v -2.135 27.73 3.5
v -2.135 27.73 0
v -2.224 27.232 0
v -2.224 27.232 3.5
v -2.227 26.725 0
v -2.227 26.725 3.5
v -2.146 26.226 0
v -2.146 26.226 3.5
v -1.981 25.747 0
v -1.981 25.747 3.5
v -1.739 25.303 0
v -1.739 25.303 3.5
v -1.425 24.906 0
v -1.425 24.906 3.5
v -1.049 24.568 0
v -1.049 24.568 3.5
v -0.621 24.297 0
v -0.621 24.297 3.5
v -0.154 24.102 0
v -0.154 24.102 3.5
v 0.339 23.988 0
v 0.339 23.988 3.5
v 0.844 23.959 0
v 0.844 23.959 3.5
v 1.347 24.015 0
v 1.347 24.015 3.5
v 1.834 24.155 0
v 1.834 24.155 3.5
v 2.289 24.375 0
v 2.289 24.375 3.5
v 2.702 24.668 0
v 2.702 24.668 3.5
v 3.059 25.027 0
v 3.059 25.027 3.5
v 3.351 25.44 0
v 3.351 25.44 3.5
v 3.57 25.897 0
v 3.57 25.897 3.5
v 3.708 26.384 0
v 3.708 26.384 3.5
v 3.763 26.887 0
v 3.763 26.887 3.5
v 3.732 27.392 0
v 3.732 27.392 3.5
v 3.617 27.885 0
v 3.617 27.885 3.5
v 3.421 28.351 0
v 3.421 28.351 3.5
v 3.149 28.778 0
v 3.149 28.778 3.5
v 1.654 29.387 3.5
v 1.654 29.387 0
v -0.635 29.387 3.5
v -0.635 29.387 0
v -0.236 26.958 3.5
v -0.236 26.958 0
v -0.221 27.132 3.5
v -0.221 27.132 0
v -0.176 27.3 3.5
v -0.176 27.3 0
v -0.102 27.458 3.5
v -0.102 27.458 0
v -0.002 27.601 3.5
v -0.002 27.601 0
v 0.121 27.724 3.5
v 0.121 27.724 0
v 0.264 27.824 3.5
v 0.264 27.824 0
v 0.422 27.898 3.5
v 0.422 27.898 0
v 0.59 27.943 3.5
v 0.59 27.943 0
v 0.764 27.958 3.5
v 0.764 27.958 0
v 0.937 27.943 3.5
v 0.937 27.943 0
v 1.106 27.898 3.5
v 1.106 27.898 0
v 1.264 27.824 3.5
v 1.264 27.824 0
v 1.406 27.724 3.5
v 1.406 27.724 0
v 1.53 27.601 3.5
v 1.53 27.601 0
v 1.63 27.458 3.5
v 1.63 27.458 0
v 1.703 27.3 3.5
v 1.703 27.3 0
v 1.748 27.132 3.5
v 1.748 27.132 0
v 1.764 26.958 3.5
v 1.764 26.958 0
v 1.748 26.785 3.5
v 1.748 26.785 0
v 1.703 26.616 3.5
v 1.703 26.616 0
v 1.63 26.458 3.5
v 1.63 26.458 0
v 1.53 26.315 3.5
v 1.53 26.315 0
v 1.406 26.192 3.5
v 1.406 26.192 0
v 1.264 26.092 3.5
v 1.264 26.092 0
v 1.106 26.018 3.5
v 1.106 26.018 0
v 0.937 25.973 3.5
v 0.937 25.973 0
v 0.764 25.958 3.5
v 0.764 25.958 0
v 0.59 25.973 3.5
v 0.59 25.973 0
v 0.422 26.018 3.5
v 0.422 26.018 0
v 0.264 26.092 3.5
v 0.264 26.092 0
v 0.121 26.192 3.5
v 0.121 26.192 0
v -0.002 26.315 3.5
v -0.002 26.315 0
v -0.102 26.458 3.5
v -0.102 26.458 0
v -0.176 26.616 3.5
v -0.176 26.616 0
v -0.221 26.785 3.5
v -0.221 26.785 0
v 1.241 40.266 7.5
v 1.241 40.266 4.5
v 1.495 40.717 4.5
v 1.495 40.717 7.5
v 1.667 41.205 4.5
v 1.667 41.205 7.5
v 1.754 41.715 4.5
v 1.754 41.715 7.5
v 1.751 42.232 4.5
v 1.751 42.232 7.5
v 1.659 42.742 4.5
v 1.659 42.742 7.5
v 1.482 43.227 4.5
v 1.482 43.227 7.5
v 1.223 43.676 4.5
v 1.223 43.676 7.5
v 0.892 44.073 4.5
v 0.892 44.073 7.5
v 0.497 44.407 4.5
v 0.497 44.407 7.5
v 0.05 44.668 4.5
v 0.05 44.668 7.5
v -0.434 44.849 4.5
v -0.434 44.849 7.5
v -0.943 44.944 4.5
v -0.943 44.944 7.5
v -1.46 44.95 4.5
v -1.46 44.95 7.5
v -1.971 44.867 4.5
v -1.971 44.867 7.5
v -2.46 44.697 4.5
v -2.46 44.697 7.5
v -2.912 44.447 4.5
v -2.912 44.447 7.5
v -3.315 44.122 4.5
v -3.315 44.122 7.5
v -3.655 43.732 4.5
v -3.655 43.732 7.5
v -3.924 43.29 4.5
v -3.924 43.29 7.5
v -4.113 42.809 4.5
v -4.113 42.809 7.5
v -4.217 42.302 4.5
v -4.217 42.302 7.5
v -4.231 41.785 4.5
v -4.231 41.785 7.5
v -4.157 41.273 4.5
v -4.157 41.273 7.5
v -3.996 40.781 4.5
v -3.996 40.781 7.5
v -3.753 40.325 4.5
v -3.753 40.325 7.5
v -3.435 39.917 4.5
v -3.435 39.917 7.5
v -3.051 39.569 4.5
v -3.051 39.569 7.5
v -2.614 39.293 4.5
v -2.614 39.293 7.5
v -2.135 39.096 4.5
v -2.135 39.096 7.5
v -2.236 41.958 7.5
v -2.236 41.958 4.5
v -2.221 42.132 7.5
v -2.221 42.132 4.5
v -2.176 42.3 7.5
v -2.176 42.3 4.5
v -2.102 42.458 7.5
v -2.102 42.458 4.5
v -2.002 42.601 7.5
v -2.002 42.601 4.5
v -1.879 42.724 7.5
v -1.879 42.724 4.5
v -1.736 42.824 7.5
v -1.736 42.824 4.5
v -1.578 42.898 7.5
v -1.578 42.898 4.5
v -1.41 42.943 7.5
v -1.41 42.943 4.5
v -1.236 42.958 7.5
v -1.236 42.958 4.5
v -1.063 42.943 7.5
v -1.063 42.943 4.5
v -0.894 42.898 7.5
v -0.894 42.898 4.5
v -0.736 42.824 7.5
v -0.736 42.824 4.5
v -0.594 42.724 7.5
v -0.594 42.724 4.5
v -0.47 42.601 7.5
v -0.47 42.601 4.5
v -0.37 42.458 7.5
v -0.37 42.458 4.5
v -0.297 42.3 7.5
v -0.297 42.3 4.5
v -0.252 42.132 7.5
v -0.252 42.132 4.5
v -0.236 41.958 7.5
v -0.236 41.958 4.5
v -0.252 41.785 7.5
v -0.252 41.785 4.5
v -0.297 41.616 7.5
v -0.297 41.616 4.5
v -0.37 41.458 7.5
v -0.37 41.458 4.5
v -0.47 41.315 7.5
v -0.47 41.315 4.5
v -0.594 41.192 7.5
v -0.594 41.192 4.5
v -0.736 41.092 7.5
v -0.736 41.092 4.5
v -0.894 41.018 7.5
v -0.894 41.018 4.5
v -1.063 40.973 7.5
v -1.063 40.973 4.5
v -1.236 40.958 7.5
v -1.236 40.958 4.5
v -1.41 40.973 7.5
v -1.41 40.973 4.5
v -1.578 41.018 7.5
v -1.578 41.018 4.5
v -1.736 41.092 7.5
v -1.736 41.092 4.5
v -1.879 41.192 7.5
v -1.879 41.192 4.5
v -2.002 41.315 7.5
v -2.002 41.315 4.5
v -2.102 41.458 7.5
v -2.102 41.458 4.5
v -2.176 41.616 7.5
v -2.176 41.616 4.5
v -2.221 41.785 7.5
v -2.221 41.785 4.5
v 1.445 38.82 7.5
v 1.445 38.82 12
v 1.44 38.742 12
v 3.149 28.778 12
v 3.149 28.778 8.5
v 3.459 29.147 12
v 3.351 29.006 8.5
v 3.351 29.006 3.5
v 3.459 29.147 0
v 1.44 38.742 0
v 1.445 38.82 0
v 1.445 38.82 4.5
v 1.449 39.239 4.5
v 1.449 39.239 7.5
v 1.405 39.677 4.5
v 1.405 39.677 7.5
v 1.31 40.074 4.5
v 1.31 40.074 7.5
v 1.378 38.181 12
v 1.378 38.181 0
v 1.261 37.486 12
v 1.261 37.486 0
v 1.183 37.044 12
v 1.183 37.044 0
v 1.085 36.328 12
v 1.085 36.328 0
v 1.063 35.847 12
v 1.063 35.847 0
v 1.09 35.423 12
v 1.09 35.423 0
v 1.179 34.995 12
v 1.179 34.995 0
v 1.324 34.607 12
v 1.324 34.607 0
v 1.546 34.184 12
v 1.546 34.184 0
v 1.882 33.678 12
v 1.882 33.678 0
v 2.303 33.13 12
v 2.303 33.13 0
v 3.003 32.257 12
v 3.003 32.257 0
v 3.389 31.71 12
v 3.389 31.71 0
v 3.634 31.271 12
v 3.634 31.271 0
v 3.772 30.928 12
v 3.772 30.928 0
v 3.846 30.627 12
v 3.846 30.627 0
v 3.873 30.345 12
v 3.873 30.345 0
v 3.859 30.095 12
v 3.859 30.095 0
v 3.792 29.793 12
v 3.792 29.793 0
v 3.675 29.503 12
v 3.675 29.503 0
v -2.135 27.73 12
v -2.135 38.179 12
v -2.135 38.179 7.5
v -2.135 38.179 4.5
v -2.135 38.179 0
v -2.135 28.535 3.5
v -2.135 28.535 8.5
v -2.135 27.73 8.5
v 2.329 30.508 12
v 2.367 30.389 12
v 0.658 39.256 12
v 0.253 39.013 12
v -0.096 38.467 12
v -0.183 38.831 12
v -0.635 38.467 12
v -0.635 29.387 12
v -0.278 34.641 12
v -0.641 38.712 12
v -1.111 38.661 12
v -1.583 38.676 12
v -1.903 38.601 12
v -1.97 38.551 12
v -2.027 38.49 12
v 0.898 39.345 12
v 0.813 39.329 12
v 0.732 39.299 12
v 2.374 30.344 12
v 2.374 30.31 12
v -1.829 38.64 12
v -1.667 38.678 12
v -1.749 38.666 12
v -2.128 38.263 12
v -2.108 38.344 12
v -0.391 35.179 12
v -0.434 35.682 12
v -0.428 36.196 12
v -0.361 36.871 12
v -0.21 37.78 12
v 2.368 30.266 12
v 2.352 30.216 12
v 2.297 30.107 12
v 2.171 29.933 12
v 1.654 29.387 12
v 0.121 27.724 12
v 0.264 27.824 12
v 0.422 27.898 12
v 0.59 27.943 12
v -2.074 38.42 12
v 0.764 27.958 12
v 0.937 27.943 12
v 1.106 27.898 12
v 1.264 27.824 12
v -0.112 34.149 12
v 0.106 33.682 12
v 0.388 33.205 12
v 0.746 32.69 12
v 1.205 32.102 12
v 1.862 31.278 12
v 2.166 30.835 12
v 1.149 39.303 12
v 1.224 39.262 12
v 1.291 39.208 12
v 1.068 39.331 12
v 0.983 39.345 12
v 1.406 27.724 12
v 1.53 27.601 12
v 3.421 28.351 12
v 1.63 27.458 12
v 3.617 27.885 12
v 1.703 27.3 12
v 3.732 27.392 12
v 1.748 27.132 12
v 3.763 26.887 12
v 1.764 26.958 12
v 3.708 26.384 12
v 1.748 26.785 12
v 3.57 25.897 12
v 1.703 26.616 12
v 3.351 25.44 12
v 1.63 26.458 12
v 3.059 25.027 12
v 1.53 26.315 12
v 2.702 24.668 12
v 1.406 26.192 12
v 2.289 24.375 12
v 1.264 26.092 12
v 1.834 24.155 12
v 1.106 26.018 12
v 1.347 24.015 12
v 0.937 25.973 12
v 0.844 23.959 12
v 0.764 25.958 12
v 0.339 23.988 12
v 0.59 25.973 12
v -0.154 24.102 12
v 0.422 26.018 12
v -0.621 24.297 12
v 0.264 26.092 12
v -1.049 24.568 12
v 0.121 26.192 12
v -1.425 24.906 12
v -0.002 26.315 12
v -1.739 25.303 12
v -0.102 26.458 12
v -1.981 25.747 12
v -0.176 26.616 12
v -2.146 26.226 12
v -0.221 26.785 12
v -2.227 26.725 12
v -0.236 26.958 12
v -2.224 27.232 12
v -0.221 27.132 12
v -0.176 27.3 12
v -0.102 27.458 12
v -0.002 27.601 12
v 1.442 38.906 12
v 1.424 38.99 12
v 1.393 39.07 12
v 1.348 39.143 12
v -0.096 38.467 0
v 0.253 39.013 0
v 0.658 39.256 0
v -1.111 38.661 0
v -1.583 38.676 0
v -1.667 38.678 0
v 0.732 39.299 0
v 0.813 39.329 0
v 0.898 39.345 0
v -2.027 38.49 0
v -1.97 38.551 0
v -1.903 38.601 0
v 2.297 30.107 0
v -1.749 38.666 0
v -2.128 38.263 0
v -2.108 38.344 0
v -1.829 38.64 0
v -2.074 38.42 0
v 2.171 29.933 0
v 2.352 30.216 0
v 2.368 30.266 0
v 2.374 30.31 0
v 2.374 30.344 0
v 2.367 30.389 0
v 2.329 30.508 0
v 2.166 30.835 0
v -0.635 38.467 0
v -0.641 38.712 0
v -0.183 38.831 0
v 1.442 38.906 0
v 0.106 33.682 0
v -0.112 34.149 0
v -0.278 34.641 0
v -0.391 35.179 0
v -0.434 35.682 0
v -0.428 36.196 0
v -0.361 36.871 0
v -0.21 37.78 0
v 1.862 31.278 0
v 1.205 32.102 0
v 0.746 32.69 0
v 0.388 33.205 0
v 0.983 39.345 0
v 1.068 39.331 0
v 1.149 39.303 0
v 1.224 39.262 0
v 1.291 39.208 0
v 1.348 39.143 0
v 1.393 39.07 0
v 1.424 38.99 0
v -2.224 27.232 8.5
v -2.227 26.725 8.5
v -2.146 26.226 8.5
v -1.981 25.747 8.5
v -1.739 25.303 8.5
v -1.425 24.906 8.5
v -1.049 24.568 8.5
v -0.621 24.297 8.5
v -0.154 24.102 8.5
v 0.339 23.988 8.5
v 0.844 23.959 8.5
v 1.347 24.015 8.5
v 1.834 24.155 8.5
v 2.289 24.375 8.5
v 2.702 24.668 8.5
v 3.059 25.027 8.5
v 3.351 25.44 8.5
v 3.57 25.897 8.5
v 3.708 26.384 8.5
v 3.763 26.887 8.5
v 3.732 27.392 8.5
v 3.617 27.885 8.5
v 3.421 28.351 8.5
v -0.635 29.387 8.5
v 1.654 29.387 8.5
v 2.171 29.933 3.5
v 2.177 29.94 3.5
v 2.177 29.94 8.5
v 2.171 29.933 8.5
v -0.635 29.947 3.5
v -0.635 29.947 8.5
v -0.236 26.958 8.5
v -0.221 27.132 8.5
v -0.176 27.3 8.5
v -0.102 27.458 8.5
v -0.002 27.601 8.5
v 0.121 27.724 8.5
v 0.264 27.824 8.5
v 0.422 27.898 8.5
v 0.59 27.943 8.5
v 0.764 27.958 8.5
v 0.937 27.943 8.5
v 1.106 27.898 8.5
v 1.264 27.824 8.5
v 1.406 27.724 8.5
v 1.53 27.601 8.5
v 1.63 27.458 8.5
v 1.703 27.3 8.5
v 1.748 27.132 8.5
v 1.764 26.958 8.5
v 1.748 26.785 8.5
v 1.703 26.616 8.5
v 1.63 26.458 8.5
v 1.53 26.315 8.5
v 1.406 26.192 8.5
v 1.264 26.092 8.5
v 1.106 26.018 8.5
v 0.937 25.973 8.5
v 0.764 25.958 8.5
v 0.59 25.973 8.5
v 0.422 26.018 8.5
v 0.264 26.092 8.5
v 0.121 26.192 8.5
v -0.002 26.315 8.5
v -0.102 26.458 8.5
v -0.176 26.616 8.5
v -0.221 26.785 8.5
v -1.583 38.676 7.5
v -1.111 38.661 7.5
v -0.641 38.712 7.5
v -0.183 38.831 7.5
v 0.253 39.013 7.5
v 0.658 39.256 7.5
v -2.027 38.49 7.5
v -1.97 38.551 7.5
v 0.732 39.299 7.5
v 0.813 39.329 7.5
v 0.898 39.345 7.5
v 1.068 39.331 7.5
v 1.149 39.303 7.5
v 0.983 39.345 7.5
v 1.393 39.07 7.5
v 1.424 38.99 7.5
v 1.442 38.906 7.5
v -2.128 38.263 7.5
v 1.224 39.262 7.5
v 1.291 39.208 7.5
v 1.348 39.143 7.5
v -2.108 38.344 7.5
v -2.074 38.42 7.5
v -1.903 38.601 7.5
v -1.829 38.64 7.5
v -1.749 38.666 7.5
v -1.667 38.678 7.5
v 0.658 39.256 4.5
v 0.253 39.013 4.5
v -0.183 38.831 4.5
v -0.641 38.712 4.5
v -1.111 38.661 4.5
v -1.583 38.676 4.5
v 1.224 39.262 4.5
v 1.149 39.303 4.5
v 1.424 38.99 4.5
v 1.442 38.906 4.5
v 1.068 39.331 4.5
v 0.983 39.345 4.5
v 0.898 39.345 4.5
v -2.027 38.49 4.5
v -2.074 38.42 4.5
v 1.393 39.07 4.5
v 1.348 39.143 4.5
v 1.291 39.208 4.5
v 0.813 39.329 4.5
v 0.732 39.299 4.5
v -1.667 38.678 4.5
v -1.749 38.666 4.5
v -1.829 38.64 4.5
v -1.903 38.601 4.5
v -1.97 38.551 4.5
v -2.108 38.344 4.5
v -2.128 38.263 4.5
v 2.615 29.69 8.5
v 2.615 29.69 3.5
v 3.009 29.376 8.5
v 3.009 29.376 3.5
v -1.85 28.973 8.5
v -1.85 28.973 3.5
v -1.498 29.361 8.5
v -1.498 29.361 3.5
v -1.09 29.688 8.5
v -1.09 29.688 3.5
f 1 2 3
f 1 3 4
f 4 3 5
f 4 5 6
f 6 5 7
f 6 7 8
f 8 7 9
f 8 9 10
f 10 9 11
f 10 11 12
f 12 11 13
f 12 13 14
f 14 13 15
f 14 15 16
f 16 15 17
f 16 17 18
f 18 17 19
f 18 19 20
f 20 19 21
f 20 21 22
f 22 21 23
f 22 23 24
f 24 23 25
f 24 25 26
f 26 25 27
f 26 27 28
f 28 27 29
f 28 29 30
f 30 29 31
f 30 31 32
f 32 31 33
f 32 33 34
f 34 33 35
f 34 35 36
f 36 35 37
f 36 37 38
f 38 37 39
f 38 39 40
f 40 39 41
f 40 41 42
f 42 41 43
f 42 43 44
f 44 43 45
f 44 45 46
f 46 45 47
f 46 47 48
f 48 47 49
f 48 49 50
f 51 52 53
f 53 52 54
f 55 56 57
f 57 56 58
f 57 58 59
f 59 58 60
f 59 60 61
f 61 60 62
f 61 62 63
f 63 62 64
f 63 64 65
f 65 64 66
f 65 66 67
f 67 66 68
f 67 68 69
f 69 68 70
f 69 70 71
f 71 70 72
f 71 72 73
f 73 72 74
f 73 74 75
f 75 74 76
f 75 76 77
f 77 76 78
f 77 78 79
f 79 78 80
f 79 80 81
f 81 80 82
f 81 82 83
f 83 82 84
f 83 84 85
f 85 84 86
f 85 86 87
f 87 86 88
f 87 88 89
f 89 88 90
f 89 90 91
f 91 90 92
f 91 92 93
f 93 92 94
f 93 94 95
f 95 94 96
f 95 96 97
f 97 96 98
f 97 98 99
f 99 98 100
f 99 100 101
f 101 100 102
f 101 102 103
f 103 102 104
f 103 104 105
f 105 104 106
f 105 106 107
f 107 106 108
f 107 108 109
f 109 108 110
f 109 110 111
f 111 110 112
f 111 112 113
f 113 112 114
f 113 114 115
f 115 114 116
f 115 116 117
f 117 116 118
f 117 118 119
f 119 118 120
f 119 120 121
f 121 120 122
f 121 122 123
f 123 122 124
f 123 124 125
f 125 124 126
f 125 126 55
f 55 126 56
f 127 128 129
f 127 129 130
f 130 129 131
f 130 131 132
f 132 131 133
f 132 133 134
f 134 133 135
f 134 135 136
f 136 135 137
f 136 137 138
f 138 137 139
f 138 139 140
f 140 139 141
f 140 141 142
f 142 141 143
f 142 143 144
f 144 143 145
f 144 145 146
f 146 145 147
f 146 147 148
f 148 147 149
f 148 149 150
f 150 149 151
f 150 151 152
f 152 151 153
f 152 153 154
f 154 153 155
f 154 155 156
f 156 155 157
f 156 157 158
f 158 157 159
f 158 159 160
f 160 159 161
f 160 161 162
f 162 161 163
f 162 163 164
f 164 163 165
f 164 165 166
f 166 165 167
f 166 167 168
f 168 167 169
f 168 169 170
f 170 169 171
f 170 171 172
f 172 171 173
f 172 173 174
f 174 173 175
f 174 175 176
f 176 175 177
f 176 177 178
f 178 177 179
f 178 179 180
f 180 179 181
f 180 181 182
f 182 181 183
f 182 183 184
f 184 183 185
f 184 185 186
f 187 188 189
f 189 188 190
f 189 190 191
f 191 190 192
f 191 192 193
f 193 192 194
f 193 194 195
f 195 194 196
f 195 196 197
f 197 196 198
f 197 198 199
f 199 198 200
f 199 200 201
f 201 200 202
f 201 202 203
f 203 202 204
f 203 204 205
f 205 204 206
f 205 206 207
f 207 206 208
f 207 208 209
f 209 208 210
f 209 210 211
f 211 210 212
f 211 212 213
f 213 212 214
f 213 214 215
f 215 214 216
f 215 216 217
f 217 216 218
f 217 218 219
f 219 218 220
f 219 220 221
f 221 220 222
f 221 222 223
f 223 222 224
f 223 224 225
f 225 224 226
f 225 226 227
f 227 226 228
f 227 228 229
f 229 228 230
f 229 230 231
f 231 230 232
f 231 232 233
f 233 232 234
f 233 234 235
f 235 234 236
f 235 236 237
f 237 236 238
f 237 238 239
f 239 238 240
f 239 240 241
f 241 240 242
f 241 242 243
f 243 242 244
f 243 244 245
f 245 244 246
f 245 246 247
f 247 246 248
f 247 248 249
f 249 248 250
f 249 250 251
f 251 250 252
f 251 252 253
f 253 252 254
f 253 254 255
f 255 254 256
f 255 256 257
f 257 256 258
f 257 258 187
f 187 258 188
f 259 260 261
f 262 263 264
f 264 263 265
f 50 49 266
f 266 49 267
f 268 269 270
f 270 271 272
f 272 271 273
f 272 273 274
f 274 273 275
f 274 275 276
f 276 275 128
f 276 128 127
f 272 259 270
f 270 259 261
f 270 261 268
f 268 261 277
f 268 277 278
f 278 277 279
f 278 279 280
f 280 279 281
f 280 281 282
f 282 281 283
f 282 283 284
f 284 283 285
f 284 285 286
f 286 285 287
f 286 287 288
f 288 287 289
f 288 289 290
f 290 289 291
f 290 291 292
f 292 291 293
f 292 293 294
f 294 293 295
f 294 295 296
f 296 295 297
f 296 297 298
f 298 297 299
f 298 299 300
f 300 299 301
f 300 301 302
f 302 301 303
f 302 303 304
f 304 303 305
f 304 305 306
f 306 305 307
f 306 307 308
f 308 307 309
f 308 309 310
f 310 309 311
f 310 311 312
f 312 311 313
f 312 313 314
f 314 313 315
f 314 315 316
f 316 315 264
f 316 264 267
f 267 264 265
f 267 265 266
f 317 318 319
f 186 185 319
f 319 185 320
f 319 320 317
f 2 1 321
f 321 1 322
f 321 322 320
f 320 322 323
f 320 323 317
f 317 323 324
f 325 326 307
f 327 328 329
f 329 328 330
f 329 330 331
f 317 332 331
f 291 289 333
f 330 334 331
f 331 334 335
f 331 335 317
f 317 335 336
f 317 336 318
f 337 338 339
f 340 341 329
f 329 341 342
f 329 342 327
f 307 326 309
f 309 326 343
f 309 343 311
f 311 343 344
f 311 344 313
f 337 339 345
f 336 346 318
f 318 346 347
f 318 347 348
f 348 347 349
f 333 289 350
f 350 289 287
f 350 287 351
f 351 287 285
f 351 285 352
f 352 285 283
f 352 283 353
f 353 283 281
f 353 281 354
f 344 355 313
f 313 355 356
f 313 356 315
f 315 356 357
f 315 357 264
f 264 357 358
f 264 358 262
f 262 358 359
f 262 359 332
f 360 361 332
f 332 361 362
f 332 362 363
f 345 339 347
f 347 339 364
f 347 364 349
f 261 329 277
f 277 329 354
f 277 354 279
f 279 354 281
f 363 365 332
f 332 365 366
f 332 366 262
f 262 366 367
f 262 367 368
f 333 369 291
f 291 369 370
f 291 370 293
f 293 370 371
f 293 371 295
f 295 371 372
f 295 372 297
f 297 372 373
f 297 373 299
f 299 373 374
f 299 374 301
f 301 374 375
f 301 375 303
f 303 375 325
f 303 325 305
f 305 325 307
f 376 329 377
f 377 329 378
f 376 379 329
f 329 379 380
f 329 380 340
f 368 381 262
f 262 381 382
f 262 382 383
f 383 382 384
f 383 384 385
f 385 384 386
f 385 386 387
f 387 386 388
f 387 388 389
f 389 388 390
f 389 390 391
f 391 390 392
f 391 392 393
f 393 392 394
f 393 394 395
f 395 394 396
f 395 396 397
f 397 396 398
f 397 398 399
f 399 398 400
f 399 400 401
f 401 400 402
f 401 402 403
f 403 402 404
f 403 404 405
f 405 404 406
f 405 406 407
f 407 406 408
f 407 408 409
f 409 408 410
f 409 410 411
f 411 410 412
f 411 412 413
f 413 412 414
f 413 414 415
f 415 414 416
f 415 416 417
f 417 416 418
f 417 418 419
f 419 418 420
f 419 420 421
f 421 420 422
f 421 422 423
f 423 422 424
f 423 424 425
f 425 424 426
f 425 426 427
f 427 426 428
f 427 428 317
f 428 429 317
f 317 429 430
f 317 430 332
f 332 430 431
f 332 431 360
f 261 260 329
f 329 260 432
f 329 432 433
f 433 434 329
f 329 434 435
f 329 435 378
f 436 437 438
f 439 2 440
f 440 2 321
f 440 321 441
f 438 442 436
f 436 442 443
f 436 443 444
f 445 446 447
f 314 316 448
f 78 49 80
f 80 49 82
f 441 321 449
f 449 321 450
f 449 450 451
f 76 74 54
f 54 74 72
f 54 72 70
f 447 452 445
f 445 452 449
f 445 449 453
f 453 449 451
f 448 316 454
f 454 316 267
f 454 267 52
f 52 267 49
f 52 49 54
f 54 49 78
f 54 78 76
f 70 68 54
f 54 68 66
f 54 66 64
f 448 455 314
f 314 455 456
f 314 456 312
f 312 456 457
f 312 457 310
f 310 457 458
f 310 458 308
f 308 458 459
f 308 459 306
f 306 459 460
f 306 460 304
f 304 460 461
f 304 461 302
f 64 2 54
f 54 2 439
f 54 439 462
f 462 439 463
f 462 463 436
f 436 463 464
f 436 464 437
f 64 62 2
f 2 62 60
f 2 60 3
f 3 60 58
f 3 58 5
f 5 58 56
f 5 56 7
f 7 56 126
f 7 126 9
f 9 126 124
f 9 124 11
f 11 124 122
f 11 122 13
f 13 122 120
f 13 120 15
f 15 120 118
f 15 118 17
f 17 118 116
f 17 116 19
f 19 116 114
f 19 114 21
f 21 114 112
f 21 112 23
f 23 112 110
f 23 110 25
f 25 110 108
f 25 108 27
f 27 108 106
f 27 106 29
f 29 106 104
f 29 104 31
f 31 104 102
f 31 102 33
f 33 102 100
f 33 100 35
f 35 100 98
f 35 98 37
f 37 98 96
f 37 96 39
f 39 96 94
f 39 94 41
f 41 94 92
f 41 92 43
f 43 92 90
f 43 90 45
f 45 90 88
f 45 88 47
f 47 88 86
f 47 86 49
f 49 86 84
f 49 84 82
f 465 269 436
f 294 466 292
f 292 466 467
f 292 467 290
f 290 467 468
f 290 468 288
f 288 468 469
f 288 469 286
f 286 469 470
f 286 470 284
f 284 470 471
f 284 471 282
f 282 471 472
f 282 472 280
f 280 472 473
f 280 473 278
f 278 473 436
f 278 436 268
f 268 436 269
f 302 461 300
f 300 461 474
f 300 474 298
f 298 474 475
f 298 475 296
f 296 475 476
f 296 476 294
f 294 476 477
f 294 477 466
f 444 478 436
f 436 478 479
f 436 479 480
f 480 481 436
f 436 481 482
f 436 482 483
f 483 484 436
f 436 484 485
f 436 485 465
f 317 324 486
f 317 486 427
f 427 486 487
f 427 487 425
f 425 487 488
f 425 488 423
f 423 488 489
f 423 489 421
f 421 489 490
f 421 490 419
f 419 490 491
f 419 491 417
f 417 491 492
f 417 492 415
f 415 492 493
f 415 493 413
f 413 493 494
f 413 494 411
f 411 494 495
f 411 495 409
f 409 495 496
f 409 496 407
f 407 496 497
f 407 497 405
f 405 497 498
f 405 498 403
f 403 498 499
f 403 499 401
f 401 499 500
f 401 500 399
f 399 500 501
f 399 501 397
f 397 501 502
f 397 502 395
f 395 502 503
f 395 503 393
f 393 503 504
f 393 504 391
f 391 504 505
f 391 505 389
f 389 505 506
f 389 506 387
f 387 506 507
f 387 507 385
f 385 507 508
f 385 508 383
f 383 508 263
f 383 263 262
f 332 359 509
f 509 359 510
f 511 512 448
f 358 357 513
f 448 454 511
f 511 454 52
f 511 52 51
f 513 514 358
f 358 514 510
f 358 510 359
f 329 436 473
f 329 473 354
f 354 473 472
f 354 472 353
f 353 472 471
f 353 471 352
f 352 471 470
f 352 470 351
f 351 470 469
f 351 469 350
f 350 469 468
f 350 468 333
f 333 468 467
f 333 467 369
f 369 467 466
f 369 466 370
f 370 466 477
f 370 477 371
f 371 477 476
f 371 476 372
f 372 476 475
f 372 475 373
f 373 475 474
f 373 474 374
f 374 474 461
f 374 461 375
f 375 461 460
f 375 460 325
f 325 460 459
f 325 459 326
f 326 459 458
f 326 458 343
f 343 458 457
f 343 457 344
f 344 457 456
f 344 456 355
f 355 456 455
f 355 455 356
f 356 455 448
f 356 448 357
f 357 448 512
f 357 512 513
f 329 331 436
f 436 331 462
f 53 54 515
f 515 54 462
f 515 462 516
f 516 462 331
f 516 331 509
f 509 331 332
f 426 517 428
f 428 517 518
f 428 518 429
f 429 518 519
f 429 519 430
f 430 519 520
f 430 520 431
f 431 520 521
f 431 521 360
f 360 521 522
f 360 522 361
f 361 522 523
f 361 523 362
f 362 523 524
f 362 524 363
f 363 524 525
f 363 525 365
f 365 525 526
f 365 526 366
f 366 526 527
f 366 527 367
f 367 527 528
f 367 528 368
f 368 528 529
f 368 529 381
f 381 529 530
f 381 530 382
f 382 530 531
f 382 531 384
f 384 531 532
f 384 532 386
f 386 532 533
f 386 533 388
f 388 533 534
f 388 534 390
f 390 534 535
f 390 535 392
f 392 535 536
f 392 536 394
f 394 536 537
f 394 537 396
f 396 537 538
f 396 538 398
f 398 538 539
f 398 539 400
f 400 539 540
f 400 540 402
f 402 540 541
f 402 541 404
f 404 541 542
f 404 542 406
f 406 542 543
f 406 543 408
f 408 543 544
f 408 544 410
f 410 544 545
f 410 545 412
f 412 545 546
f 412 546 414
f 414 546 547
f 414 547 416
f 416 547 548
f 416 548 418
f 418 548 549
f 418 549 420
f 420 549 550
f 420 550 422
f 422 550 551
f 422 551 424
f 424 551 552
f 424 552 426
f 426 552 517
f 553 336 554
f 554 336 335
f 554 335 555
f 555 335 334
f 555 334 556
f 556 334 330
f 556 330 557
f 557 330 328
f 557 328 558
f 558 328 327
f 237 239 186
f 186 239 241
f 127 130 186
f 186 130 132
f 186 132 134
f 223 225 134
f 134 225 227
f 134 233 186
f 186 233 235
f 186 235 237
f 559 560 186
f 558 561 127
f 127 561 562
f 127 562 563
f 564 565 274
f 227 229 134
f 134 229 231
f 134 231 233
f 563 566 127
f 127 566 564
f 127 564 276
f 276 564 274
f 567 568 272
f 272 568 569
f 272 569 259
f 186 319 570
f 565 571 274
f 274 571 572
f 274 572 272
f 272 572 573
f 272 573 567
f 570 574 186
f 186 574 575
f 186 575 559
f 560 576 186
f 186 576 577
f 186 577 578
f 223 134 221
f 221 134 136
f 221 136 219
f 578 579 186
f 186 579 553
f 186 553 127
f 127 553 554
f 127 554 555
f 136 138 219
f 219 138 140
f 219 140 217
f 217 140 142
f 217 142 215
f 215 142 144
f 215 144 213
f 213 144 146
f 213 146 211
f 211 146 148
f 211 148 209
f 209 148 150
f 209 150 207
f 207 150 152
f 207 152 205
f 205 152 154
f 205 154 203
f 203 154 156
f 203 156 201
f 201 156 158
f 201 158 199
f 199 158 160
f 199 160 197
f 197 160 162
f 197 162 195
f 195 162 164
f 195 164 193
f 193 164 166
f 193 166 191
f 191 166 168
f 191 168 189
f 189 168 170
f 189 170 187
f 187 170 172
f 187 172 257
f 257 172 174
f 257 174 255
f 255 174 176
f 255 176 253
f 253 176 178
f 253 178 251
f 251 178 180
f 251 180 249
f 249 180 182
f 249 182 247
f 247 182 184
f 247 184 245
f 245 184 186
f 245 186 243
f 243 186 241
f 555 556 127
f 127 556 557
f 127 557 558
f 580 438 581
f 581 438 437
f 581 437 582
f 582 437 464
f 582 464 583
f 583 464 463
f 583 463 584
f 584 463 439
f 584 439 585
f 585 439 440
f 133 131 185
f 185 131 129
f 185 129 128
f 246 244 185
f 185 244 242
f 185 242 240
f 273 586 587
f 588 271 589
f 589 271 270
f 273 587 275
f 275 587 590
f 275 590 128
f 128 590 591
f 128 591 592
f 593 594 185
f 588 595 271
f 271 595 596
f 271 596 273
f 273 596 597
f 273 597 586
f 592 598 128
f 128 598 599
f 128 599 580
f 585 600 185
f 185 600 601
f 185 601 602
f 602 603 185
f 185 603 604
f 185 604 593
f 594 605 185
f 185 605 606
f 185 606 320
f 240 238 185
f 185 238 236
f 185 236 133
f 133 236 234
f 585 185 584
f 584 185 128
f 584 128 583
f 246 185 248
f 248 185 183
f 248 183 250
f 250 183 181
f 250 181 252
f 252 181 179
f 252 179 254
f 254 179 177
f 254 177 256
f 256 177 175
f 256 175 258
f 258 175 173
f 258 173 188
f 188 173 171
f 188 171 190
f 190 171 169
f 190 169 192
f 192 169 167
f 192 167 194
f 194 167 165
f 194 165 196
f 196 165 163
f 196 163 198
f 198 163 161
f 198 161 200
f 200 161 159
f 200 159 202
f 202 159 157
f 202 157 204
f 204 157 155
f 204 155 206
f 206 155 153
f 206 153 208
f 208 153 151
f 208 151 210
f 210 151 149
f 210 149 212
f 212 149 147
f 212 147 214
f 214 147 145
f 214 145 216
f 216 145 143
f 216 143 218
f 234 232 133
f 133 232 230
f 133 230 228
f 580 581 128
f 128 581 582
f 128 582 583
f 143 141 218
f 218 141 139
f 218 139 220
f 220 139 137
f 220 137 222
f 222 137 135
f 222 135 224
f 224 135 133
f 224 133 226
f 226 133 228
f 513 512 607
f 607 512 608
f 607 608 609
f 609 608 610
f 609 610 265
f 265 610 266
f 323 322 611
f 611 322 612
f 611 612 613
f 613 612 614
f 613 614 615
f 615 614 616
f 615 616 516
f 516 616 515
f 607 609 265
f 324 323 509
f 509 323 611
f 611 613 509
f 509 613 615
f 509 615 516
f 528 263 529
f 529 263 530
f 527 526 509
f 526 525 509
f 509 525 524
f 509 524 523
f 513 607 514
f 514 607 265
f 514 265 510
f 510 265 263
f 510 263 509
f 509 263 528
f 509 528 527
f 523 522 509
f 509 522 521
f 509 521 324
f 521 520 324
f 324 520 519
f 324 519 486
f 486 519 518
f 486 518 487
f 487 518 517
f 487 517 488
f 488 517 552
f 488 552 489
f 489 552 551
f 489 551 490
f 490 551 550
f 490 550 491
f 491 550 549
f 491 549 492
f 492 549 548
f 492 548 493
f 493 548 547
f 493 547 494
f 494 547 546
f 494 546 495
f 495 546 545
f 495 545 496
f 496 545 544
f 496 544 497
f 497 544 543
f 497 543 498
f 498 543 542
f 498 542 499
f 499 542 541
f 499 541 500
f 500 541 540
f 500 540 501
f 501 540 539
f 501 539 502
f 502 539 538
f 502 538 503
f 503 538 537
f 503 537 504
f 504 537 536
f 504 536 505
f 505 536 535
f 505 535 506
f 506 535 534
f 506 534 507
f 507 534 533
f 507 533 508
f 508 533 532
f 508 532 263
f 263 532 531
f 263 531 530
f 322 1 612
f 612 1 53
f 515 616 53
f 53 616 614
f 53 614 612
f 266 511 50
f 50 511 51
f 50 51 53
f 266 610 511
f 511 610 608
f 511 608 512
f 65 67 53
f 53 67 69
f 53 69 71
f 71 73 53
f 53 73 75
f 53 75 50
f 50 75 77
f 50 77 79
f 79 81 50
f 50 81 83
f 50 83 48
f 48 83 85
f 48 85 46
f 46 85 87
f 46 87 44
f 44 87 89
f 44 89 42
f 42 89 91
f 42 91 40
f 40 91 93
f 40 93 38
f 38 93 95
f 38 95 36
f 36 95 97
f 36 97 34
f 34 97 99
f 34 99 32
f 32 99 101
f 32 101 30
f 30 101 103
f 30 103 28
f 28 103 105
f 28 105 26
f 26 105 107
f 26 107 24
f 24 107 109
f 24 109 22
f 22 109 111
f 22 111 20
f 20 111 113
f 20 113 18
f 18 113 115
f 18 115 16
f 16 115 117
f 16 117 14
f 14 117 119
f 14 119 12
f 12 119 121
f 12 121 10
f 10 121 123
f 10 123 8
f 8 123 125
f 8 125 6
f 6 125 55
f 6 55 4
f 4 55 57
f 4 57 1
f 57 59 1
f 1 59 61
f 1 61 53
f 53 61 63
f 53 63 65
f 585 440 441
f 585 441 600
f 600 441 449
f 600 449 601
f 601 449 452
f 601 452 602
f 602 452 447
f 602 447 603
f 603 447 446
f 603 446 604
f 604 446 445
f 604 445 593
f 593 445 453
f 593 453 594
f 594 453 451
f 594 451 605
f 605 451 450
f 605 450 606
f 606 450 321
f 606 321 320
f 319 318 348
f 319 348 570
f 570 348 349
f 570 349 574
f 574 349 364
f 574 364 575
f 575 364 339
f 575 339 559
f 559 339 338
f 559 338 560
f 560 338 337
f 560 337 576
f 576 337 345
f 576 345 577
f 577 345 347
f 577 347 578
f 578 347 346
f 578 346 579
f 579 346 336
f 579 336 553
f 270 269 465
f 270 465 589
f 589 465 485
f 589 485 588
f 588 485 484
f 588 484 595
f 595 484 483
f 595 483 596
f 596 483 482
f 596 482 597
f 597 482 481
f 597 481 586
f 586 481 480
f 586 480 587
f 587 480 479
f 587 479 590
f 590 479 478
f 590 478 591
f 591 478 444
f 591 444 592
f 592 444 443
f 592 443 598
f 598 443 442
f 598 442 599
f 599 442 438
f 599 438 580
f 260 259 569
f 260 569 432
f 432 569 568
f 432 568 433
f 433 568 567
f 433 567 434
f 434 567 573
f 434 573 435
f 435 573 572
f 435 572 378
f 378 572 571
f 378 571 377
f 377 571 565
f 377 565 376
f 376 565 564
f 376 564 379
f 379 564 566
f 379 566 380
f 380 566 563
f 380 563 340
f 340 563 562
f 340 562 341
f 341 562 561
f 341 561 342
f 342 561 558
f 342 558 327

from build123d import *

# Parameters (mm, degrees)
SKETCH1_R               = 1
BOSS_EXTRUDE1_DEPTH     = 12
SKETCH2_R               = 3.3
CUT_EXTRUDE1_DEPTH      = 4.5
SKETCH3_R               = 3.3
CUT_EXTRUDE2_DEPTH      = 2.5
CUT_EXTRUDE2_DEPTH_BACK = 2.5
FILLET1_R               = 0.5


with BuildPart() as part:
    # Sketch1 → Boss-Extrude1 (new body)
    with BuildSketch(Plane.XY):
        with BuildLine():
            Line((-2.135466949, 39.096030813), (-2.135466949, 27.729845568))
            ThreePointArc((-2.135466949, 27.729845568), (1.347232905, 24.01546995), (3.148641663, 28.777896957))
            add(Edge.make_bspline(
                [(1.241090778, 40.266418218), (1.912265469, 38.58933293), (-0.897839085, 34.080207081), (5.393619541, 31.118616661), (3.148641663, 28.777896957)],
                knots=[0, 0, 0, 0, 0.42244107, 1, 1, 1, 1], degree=3))
            ThreePointArc((1.241090778, 40.266418218), (-2.218933753, 44.792695724), (-2.135466949, 39.096030813))
        make_face()
        with Locations((-1.236418473, 41.958147484)):
            Circle(SKETCH1_R, mode=Mode.SUBTRACT)
        with Locations((0.763581527, 26.958147484)):
            Circle(SKETCH1_R, mode=Mode.SUBTRACT)
        with BuildLine():
            Line((-0.096488374, 38.467254306), (-0.635466949, 38.467254306))
            Line((-0.635466949, 38.467254306), (-0.635466949, 29.386978342))
            Line((-0.635466949, 29.386978342), (1.654420667, 29.386978342))
            add(Edge.make_bspline(
                [(-0.096488374, 38.467254306), (-0.105436009, 38.401506099), (-0.136487964, 38.192292588), (-0.227961155, 37.671638495), (-0.385962112, 36.830023321), (-0.466607437, 35.853786297), (-0.377783184, 34.982876922), (-0.124189465, 34.070044509), (0.388397723, 33.151819221), (1.075806782, 32.251180688), (1.715646354, 31.483212968), (2.190959779, 30.839000473), (2.38372585, 30.391686489), (2.375574587, 30.305766013), (2.359962508, 30.224611722), (2.298151123, 30.09955086), (2.205002187, 29.972528912), (2.128350668, 29.882726381), (2.076053028, 29.826162431), (1.952733028, 29.698125272), (1.82945871, 29.569437868), (1.727842683, 29.463529821), (1.663452851, 29.396395722), (1.654420667, 29.386978342)],
                knots=[0.161996653, 0.161996653, 0.161996653, 0.161996653, 0.180586122, 0.21940152, 0.293759396, 0.368117272, 0.405296209, 0.442475147, 0.516833023, 0.591190898, 0.665548774, 0.73990665, 0.814264525, 0.888622401, 0.925801339, 0.962980277, 0.981569746, 0.99086448, 1.000159215, 1.009453949, 1.018748683, 1.032977813, 1.035301496, 1.035301496, 1.035301496, 1.035301496], degree=3))
        make_face(mode=Mode.SUBTRACT)
    extrude(amount=BOSS_EXTRUDE1_DEPTH)

    # Sketch2 → Cut-Extrude1 (cut)
    with BuildSketch(Plane.XY.offset(12)):
        with Locations((-1.236418473, 41.958147484)):
            Circle(SKETCH2_R)
    cut_extrude1 = extrude(amount=-CUT_EXTRUDE1_DEPTH, mode=Mode.SUBTRACT)

    # Mirror1: Cut-Extrude1 across plane
    add(cut_extrude1.mirror(Plane.XY.offset(6)), mode=Mode.SUBTRACT)

    # Sketch3 → Cut-Extrude2 (cut, two sides)
    with BuildSketch(Plane.XY.offset(6)) as cut_extrude2_sk:
        with Locations((0.763581527, 26.958147484)):
            Circle(SKETCH3_R)
    extrude(amount=CUT_EXTRUDE2_DEPTH, mode=Mode.SUBTRACT)
    extrude(cut_extrude2_sk.sketch, amount=-CUT_EXTRUDE2_DEPTH_BACK, mode=Mode.SUBTRACT)

    # Fillet1
    fillet1_edges = [part.edges().sort_by_distance(p)[0] for p in [
        (-2.135466949, 38.782976333, 9.75),
        (1.354946085, 39.914907476, 9.75),
        (-2.135466949, 38.782976333, 2.25),
        (1.354946085, 39.914907476, 2.25),
    ]]
    fillet(fillet1_edges, radius=FILLET1_R)


solid = part.part
